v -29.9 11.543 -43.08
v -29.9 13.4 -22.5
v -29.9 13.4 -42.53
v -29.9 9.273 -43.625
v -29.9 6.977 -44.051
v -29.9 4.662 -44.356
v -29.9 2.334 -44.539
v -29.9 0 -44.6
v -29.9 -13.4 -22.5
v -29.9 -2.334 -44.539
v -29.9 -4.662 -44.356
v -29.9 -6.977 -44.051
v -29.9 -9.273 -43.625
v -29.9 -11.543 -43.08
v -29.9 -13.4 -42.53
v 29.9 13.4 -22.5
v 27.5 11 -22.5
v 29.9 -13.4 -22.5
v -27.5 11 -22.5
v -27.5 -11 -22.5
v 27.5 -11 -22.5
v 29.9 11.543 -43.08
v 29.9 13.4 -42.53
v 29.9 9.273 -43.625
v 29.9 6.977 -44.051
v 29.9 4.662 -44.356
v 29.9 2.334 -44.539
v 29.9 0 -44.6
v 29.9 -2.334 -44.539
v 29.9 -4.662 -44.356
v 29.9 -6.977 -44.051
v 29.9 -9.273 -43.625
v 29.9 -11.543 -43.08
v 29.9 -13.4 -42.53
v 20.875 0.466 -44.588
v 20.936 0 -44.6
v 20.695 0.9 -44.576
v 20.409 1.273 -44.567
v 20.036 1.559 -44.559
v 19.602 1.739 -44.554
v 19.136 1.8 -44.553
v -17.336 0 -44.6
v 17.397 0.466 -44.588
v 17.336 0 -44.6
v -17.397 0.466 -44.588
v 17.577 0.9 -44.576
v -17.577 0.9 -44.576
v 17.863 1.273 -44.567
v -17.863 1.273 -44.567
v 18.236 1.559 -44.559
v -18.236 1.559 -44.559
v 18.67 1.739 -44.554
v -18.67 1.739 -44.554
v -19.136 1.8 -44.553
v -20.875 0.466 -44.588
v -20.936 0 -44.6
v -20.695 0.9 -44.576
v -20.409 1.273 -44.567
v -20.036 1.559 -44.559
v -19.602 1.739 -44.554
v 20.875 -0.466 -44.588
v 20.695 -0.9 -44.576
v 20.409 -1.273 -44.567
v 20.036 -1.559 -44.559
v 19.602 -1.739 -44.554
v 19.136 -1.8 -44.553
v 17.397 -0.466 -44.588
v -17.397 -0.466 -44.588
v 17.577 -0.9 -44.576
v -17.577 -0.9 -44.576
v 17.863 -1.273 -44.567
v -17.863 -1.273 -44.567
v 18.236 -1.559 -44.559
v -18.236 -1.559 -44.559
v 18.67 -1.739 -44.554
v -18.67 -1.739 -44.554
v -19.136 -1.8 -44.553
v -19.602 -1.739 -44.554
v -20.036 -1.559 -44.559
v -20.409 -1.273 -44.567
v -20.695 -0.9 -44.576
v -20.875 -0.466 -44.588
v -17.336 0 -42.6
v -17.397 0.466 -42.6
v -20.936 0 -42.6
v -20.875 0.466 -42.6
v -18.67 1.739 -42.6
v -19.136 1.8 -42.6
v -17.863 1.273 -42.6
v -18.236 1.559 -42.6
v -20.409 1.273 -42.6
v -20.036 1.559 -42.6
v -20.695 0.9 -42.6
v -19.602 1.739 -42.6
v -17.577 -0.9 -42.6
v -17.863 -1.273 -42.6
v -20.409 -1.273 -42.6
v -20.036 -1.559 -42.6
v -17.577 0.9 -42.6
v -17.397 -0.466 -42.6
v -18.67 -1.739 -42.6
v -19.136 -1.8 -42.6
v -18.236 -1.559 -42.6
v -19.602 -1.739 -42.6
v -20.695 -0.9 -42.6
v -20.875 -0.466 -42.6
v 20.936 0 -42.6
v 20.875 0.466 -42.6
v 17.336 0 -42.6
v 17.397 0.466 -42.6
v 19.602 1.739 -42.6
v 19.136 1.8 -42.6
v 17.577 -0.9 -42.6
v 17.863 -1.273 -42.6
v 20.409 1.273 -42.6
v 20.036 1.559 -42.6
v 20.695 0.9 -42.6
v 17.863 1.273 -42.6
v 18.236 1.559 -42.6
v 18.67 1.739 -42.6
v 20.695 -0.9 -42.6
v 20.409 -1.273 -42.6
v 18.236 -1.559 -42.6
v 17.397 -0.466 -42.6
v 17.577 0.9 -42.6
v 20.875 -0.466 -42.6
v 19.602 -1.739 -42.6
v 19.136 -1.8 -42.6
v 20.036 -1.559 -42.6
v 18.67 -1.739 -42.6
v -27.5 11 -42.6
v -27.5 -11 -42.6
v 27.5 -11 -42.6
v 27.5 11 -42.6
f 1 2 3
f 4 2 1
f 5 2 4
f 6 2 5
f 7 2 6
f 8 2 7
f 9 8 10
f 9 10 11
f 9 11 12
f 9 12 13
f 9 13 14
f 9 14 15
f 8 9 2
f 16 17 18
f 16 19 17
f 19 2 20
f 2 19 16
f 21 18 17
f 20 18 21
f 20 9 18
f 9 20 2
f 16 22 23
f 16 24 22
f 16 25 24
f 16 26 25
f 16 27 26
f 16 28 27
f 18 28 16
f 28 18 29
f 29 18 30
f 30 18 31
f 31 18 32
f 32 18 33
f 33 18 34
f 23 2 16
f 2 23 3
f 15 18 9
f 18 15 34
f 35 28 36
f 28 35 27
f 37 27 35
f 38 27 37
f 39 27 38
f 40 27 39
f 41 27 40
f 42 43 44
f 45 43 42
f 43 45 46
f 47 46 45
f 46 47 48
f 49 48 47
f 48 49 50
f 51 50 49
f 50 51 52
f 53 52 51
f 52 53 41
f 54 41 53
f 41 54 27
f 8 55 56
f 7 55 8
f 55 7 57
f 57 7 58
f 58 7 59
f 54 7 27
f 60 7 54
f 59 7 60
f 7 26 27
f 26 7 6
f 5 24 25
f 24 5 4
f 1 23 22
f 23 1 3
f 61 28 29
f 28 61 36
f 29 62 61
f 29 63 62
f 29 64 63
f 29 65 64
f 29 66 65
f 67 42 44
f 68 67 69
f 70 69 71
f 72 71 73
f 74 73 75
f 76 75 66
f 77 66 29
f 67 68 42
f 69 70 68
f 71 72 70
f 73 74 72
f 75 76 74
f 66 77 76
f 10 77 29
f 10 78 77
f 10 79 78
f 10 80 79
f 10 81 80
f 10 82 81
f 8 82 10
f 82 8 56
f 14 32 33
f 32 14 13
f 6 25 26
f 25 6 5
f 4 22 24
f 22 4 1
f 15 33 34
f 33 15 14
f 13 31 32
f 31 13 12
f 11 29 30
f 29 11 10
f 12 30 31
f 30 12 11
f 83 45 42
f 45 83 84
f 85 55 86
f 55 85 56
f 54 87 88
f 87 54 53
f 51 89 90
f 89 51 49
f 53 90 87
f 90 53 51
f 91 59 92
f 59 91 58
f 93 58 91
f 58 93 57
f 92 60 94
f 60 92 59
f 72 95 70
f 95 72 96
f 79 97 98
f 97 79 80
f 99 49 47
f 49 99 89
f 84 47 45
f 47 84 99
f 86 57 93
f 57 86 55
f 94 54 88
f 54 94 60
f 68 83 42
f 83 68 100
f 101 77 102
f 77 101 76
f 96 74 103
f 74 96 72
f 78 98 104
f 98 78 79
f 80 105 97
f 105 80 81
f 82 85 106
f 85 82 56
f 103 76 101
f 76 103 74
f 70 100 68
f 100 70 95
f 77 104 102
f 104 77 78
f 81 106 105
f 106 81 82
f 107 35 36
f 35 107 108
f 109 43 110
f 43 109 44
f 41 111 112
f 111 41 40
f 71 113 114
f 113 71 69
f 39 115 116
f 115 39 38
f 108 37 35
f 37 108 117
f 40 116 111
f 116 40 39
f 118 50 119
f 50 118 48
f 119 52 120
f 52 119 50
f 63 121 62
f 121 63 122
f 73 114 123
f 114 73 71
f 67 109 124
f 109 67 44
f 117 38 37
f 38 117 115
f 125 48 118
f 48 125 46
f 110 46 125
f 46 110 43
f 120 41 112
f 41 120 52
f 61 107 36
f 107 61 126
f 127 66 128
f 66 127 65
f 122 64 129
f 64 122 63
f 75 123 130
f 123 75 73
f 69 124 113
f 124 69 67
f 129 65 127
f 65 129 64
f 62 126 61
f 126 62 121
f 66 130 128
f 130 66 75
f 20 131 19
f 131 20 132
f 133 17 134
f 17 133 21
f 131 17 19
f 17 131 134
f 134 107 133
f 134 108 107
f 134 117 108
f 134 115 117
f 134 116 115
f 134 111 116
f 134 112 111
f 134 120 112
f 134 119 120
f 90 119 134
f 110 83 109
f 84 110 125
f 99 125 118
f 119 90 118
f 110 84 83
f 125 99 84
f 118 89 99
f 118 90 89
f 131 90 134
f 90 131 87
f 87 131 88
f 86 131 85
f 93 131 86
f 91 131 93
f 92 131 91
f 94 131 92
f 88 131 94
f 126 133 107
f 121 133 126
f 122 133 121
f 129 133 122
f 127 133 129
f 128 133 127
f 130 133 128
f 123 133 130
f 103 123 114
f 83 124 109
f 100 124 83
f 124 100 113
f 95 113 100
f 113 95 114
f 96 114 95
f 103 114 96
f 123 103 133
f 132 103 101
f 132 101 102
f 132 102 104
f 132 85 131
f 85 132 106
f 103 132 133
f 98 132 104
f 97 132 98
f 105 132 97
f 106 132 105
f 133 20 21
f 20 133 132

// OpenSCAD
// file: params.scad
// SEA:CUT / Friendly Floatee drifter — shared parameters (mm)
// Hardware: CERN-OHL-S v2 (strongly reciprocal). Docs: CC BY-SA 4.0. Firmware: MIT.
// MEASURE YOUR OWN BOTTLE and edit these. Defaults approximate a 1 L round PET bottle.

// --- bottle (upcycled PET) ---
bottle_id = 90;            // bottle inner diameter
bottle_r  = bottle_id / 2; // derived inner radius

// --- printing ---
wall = 2.4;                // printed wall thickness
clr  = 0.4;                // fit clearance
$fn  = 64;                 // curve smoothness

// --- LILYGO T-A7670G board (approximate, incl. headers) ---
board_l = 68;
board_w = 34;
board_h = 12;

// --- 18650 protected cell ---
cell_d = 18.6;
cell_l = 68;

// --- lead-free ballast pocket (self-righting weight) ---
ballast_l = 55;
ballast_w = 22;

// --- flotation & hydrostatics (NEW; estimates — verify per build; see hardware/RELIABILITY.md) ---
// Sealed 1 L bottle displaces ~1000 cm^3 -> reserve ratio ~4.83x (never sinks intact).
// Real failure = seal leak -> flooded net buoyancy ~ -97 gf -> sinks. Foam reverses it.
foam_vol             = 160;   // cm^3 closed-cell foam (flooded reserve; non-BOM NEW part)
foam_density         = 0.04;  // g/cm^3 EVA/EPE estimate (range 0.03-0.05)
reserve_ratio_target = 1.25;  // flooded: (disp/mass) >= this  (PASS >= 1.20)
sealed_reserve_min   = 3.0;   // sealed: 1000cm3/mass >= this (design ~4.83)
freeboard_min        = 30;    // mm minimum calm-water freeboard
ballast_mass_g       = 40;    // tuning var; +10 g ballast needs +~11.7 cm^3 foam
// foam collar geometry (NEW part, cut/heat-formed EVA sheet — .scad is the cut master)
foam_od     = 86;             // mm, fits inside bottle_id=90 with margin
foam_bore_l = board_l + 2;    // ~70 mm payload channel (board_l=68)
foam_bore_w = board_w + 6;    // ~40 mm (board_w=34)
foam_area   = PI*pow(foam_od/2,2)/100 - (foam_bore_l*foam_bore_w)/100; // ~30.1 cm^2
foam_collar_h = foam_vol / foam_area;   // ~53 mm; split into 2 x ~27 mm
// prints: measured STL solid volume = 56.9 cm^3 (bracket 40.4 + keel 9.95 + loop 6.57)
print_infill_max = 0.60;  // keep <=60% -> foam_vol 160 holds; solid(100%) needs ~175

// --- full assembly (real size; visual mocks measure YOUR parts) ---
collar_t   = 27;          // foam collar thickness (2 pieces = foam_collar_h ~53)
collar_x   = 44.5;        // collar center offset +-X (clears keel ends at +-29.9)
bottle_body_l = 190;      // straight body length of a ~1 L bottle (mock)
bottle_body_x0 = -100;    // body from x0 to x0+bottle_body_l; neck/cap at +X
shoulder_l = 22;          // taper body -> neck
neck_l     = 18;          // neck + cap
cap_d      = 31;          // cap outer diameter

// ============================================================
//  Tier 1.5 SOLAR VARIANT — parameters (NEW; every value an ESTIMATE -> bench-verify)
//  Anchors: buoyancy=RELIABILITY §4 (density-aware) · RF=FLOAT_STANDARD B5
//           self-right "T7" = VERIFIED_BUILD_TEST T4 re-run with the solar payload installed
//  Kernels enforced here: NO new printed part · ballast 40 g UNCHANGED ·
//                         non-metal cells only · solar = power != coverage
// ------------------------------------------------------------
solar_enable = 0;          // 0 = plain Tier 1 (default). Solar build: set 1 or render -D solar_enable=1.
                           // ★SHORT-RECOVERY MISSIONS keep 0 (ELECTRONICS_POWER §3: solar = net loss).

bl_ref = board_l + 2*wall + 2*clr;                 // 73.6 (bracket len; ribs at +-bl_ref*0.35 = +-25.76)

// --- added-mass budget (★MEASURE; lens estimates diverge 20-45 g) ---
solar_added_mass_g = 39;   // PLANNING nominal (film 10-25 + ctrl 5-8 + wire 3-4 + vent ~2 + adhesive 3-8)
solar_add_rho      = 1.64; // g/cm^3 EFFECTIVE (film~1.65 · PCB~1.9 · wire~1.5 · adhesive~1.0)
solar_second_cell  = 0;    // 1 => +~56 g (48 cell + 8 mount), BELLY only, matched cells + isolation diode (F2/T7 re-pass)
solar_added_mass_eff = solar_added_mass_g + (solar_second_cell ? 56 : 0);  // effective Δm fed to foam sizing

// --- density-aware foam re-size (★NOT the ballast 11.7 cm^3/10g; panel is low-density) ---
solar_foam_coeff = (1.25 - 1/solar_add_rho)/(1 - 1.25*foam_density)*10;  // ~6.7 cm^3 / 10 g
foam_vol_solar   = foam_vol + solar_foam_coeff*(solar_added_mass_eff/10);  // ~186 cm^3 @ 39 g (2nd cell => ~224)
collar_t_solar   = foam_vol_solar/foam_area*10/2;                        // ~31 mm each (2 collars); assembly/export use this

// --- wrap bands (★NOT printed: laminated film + marine adhesive on the body) ---
solar_wrap_od = bottle_id + 2;   // body OD (MEASURE yours)
solar_wrap_r  = solar_wrap_od/2;
solar_film_t  = 0.8;             // laminated film thickness (fit/collision + RF-window viz ONLY)
solar_band_n  = 2;
solar_band_w  = 44;              // axial band width
solar_band_gap= 34;              // central channel >= recovery-loop base 30 (loop + QR stay bare)
solar_band_x  = [ for (i=[0:solar_band_n-1])
                  (solar_band_n==1) ? 0 : (i-(solar_band_n-1)/2)*(solar_band_w+solar_band_gap) ]; // +-39

// --- RF keep-out (★REAL gate = non-metal substrate; the film window is secondary insurance) ---
solar_cell_substrate = "nonmetal"; // HARD GATE: a-Si / polyimide ONLY. "metal" => ABORT (B5; verify T6)
solar_rf_x0 = -50; solar_rf_x1 = 48;  // antenna x-range (doc only; the window currently cuts the full band length)
solar_rf_deg = 120;                   // top +Z sector kept FILM-FREE (cut across the whole band = conservative)

// --- charge path (★default EXTERNAL low-Iq linear -> BATTERY terminal; NOT onboard-direct) ---
solar_ctrl_mode = "linear";  // "linear"=CN3065-class low-Iq (DEFAULT) | "mppt"=CN3791-class (clean sites)
solar_ctrl_l=26; solar_ctrl_w=19; solar_ctrl_h=7;   // COTS envelope (CG viz only), zip-tied to bracket rib
solar_ctrl_x = -bl_ref*0.35;  // -25.76 : on the -X bracket locating rib
solar_ctrl_z = -2;            // just below centreline, BESIDE the cell holder (keep CG low -> T7)

// --- low-temp cutoff (★MANDATORY on ALL modes — HARDWARE latch, not firmware) ---
solar_ntc = "10k_B3435_cell_bonded";  // JEITA: <0C stop · 0-10C taper · >45C stop (epoxy to cell can)

// --- wiring: REUSE the resealed-seam grommet (assembly §3-0) — NO NEW HOLE; re-pass T1 ---
solar_wire_od = 3.0;
// --- vent: Gore-Tex ePTFE ADHESIVE PATCH on the cap (NOT a printed boss) ---
solar_vent_patch_d = 19;

// ★HARD GATE (FLOAT_STANDARD B5) — makes the "metal => ABORT" claim TRUE in code, not just prose.
//   Any file that includes params.scad aborts if a metal-backed cell substrate is selected.
assert(solar_cell_substrate != "metal",
       "B5: metal-backed solar cells shield the antennas (RF death) + are toxic -> ABORT. Use a-Si (ETFE) or Cd-free CIGS (polyimide).");
// main file
// SEA:CUT / Friendly Floatee — ballast keel (self-righting)
// Seats at the belly (-Z) and carries lead-free weight low, so the float always
// rights itself antenna-up no matter how it rolls.
// Axes: X = bottle long axis, -Z = belly.
include <params.scad>

module ballast_keel() {
    Lx = ballast_l + 2*wall;
    Wy = ballast_w + 2*wall;
    Hz = bottle_r * 0.5;
    difference() {
        // slab at the belly, trimmed to the bottle inner wall
        intersection() {
            translate([-Lx/2, -Wy/2, -bottle_r]) cube([Lx, Wy, Hz]);
            rotate([0, 90, 0]) cylinder(h = Lx + 4, r = bottle_r - clr, center = true, $fn = 120);
        }
        // open weight pocket (pack with lead-free sinkers, then seal)
        translate([-ballast_l/2, -ballast_w/2, -bottle_r + wall]) cube([ballast_l, ballast_w, Hz]);
        // zip-tie / drain holes
        for (x = [-Lx*0.32, Lx*0.32])
            translate([x, 0, -bottle_r - 1]) cylinder(h = Hz + 2, r = 1.8, $fn = 24);
    }
}

ballast_keel();
